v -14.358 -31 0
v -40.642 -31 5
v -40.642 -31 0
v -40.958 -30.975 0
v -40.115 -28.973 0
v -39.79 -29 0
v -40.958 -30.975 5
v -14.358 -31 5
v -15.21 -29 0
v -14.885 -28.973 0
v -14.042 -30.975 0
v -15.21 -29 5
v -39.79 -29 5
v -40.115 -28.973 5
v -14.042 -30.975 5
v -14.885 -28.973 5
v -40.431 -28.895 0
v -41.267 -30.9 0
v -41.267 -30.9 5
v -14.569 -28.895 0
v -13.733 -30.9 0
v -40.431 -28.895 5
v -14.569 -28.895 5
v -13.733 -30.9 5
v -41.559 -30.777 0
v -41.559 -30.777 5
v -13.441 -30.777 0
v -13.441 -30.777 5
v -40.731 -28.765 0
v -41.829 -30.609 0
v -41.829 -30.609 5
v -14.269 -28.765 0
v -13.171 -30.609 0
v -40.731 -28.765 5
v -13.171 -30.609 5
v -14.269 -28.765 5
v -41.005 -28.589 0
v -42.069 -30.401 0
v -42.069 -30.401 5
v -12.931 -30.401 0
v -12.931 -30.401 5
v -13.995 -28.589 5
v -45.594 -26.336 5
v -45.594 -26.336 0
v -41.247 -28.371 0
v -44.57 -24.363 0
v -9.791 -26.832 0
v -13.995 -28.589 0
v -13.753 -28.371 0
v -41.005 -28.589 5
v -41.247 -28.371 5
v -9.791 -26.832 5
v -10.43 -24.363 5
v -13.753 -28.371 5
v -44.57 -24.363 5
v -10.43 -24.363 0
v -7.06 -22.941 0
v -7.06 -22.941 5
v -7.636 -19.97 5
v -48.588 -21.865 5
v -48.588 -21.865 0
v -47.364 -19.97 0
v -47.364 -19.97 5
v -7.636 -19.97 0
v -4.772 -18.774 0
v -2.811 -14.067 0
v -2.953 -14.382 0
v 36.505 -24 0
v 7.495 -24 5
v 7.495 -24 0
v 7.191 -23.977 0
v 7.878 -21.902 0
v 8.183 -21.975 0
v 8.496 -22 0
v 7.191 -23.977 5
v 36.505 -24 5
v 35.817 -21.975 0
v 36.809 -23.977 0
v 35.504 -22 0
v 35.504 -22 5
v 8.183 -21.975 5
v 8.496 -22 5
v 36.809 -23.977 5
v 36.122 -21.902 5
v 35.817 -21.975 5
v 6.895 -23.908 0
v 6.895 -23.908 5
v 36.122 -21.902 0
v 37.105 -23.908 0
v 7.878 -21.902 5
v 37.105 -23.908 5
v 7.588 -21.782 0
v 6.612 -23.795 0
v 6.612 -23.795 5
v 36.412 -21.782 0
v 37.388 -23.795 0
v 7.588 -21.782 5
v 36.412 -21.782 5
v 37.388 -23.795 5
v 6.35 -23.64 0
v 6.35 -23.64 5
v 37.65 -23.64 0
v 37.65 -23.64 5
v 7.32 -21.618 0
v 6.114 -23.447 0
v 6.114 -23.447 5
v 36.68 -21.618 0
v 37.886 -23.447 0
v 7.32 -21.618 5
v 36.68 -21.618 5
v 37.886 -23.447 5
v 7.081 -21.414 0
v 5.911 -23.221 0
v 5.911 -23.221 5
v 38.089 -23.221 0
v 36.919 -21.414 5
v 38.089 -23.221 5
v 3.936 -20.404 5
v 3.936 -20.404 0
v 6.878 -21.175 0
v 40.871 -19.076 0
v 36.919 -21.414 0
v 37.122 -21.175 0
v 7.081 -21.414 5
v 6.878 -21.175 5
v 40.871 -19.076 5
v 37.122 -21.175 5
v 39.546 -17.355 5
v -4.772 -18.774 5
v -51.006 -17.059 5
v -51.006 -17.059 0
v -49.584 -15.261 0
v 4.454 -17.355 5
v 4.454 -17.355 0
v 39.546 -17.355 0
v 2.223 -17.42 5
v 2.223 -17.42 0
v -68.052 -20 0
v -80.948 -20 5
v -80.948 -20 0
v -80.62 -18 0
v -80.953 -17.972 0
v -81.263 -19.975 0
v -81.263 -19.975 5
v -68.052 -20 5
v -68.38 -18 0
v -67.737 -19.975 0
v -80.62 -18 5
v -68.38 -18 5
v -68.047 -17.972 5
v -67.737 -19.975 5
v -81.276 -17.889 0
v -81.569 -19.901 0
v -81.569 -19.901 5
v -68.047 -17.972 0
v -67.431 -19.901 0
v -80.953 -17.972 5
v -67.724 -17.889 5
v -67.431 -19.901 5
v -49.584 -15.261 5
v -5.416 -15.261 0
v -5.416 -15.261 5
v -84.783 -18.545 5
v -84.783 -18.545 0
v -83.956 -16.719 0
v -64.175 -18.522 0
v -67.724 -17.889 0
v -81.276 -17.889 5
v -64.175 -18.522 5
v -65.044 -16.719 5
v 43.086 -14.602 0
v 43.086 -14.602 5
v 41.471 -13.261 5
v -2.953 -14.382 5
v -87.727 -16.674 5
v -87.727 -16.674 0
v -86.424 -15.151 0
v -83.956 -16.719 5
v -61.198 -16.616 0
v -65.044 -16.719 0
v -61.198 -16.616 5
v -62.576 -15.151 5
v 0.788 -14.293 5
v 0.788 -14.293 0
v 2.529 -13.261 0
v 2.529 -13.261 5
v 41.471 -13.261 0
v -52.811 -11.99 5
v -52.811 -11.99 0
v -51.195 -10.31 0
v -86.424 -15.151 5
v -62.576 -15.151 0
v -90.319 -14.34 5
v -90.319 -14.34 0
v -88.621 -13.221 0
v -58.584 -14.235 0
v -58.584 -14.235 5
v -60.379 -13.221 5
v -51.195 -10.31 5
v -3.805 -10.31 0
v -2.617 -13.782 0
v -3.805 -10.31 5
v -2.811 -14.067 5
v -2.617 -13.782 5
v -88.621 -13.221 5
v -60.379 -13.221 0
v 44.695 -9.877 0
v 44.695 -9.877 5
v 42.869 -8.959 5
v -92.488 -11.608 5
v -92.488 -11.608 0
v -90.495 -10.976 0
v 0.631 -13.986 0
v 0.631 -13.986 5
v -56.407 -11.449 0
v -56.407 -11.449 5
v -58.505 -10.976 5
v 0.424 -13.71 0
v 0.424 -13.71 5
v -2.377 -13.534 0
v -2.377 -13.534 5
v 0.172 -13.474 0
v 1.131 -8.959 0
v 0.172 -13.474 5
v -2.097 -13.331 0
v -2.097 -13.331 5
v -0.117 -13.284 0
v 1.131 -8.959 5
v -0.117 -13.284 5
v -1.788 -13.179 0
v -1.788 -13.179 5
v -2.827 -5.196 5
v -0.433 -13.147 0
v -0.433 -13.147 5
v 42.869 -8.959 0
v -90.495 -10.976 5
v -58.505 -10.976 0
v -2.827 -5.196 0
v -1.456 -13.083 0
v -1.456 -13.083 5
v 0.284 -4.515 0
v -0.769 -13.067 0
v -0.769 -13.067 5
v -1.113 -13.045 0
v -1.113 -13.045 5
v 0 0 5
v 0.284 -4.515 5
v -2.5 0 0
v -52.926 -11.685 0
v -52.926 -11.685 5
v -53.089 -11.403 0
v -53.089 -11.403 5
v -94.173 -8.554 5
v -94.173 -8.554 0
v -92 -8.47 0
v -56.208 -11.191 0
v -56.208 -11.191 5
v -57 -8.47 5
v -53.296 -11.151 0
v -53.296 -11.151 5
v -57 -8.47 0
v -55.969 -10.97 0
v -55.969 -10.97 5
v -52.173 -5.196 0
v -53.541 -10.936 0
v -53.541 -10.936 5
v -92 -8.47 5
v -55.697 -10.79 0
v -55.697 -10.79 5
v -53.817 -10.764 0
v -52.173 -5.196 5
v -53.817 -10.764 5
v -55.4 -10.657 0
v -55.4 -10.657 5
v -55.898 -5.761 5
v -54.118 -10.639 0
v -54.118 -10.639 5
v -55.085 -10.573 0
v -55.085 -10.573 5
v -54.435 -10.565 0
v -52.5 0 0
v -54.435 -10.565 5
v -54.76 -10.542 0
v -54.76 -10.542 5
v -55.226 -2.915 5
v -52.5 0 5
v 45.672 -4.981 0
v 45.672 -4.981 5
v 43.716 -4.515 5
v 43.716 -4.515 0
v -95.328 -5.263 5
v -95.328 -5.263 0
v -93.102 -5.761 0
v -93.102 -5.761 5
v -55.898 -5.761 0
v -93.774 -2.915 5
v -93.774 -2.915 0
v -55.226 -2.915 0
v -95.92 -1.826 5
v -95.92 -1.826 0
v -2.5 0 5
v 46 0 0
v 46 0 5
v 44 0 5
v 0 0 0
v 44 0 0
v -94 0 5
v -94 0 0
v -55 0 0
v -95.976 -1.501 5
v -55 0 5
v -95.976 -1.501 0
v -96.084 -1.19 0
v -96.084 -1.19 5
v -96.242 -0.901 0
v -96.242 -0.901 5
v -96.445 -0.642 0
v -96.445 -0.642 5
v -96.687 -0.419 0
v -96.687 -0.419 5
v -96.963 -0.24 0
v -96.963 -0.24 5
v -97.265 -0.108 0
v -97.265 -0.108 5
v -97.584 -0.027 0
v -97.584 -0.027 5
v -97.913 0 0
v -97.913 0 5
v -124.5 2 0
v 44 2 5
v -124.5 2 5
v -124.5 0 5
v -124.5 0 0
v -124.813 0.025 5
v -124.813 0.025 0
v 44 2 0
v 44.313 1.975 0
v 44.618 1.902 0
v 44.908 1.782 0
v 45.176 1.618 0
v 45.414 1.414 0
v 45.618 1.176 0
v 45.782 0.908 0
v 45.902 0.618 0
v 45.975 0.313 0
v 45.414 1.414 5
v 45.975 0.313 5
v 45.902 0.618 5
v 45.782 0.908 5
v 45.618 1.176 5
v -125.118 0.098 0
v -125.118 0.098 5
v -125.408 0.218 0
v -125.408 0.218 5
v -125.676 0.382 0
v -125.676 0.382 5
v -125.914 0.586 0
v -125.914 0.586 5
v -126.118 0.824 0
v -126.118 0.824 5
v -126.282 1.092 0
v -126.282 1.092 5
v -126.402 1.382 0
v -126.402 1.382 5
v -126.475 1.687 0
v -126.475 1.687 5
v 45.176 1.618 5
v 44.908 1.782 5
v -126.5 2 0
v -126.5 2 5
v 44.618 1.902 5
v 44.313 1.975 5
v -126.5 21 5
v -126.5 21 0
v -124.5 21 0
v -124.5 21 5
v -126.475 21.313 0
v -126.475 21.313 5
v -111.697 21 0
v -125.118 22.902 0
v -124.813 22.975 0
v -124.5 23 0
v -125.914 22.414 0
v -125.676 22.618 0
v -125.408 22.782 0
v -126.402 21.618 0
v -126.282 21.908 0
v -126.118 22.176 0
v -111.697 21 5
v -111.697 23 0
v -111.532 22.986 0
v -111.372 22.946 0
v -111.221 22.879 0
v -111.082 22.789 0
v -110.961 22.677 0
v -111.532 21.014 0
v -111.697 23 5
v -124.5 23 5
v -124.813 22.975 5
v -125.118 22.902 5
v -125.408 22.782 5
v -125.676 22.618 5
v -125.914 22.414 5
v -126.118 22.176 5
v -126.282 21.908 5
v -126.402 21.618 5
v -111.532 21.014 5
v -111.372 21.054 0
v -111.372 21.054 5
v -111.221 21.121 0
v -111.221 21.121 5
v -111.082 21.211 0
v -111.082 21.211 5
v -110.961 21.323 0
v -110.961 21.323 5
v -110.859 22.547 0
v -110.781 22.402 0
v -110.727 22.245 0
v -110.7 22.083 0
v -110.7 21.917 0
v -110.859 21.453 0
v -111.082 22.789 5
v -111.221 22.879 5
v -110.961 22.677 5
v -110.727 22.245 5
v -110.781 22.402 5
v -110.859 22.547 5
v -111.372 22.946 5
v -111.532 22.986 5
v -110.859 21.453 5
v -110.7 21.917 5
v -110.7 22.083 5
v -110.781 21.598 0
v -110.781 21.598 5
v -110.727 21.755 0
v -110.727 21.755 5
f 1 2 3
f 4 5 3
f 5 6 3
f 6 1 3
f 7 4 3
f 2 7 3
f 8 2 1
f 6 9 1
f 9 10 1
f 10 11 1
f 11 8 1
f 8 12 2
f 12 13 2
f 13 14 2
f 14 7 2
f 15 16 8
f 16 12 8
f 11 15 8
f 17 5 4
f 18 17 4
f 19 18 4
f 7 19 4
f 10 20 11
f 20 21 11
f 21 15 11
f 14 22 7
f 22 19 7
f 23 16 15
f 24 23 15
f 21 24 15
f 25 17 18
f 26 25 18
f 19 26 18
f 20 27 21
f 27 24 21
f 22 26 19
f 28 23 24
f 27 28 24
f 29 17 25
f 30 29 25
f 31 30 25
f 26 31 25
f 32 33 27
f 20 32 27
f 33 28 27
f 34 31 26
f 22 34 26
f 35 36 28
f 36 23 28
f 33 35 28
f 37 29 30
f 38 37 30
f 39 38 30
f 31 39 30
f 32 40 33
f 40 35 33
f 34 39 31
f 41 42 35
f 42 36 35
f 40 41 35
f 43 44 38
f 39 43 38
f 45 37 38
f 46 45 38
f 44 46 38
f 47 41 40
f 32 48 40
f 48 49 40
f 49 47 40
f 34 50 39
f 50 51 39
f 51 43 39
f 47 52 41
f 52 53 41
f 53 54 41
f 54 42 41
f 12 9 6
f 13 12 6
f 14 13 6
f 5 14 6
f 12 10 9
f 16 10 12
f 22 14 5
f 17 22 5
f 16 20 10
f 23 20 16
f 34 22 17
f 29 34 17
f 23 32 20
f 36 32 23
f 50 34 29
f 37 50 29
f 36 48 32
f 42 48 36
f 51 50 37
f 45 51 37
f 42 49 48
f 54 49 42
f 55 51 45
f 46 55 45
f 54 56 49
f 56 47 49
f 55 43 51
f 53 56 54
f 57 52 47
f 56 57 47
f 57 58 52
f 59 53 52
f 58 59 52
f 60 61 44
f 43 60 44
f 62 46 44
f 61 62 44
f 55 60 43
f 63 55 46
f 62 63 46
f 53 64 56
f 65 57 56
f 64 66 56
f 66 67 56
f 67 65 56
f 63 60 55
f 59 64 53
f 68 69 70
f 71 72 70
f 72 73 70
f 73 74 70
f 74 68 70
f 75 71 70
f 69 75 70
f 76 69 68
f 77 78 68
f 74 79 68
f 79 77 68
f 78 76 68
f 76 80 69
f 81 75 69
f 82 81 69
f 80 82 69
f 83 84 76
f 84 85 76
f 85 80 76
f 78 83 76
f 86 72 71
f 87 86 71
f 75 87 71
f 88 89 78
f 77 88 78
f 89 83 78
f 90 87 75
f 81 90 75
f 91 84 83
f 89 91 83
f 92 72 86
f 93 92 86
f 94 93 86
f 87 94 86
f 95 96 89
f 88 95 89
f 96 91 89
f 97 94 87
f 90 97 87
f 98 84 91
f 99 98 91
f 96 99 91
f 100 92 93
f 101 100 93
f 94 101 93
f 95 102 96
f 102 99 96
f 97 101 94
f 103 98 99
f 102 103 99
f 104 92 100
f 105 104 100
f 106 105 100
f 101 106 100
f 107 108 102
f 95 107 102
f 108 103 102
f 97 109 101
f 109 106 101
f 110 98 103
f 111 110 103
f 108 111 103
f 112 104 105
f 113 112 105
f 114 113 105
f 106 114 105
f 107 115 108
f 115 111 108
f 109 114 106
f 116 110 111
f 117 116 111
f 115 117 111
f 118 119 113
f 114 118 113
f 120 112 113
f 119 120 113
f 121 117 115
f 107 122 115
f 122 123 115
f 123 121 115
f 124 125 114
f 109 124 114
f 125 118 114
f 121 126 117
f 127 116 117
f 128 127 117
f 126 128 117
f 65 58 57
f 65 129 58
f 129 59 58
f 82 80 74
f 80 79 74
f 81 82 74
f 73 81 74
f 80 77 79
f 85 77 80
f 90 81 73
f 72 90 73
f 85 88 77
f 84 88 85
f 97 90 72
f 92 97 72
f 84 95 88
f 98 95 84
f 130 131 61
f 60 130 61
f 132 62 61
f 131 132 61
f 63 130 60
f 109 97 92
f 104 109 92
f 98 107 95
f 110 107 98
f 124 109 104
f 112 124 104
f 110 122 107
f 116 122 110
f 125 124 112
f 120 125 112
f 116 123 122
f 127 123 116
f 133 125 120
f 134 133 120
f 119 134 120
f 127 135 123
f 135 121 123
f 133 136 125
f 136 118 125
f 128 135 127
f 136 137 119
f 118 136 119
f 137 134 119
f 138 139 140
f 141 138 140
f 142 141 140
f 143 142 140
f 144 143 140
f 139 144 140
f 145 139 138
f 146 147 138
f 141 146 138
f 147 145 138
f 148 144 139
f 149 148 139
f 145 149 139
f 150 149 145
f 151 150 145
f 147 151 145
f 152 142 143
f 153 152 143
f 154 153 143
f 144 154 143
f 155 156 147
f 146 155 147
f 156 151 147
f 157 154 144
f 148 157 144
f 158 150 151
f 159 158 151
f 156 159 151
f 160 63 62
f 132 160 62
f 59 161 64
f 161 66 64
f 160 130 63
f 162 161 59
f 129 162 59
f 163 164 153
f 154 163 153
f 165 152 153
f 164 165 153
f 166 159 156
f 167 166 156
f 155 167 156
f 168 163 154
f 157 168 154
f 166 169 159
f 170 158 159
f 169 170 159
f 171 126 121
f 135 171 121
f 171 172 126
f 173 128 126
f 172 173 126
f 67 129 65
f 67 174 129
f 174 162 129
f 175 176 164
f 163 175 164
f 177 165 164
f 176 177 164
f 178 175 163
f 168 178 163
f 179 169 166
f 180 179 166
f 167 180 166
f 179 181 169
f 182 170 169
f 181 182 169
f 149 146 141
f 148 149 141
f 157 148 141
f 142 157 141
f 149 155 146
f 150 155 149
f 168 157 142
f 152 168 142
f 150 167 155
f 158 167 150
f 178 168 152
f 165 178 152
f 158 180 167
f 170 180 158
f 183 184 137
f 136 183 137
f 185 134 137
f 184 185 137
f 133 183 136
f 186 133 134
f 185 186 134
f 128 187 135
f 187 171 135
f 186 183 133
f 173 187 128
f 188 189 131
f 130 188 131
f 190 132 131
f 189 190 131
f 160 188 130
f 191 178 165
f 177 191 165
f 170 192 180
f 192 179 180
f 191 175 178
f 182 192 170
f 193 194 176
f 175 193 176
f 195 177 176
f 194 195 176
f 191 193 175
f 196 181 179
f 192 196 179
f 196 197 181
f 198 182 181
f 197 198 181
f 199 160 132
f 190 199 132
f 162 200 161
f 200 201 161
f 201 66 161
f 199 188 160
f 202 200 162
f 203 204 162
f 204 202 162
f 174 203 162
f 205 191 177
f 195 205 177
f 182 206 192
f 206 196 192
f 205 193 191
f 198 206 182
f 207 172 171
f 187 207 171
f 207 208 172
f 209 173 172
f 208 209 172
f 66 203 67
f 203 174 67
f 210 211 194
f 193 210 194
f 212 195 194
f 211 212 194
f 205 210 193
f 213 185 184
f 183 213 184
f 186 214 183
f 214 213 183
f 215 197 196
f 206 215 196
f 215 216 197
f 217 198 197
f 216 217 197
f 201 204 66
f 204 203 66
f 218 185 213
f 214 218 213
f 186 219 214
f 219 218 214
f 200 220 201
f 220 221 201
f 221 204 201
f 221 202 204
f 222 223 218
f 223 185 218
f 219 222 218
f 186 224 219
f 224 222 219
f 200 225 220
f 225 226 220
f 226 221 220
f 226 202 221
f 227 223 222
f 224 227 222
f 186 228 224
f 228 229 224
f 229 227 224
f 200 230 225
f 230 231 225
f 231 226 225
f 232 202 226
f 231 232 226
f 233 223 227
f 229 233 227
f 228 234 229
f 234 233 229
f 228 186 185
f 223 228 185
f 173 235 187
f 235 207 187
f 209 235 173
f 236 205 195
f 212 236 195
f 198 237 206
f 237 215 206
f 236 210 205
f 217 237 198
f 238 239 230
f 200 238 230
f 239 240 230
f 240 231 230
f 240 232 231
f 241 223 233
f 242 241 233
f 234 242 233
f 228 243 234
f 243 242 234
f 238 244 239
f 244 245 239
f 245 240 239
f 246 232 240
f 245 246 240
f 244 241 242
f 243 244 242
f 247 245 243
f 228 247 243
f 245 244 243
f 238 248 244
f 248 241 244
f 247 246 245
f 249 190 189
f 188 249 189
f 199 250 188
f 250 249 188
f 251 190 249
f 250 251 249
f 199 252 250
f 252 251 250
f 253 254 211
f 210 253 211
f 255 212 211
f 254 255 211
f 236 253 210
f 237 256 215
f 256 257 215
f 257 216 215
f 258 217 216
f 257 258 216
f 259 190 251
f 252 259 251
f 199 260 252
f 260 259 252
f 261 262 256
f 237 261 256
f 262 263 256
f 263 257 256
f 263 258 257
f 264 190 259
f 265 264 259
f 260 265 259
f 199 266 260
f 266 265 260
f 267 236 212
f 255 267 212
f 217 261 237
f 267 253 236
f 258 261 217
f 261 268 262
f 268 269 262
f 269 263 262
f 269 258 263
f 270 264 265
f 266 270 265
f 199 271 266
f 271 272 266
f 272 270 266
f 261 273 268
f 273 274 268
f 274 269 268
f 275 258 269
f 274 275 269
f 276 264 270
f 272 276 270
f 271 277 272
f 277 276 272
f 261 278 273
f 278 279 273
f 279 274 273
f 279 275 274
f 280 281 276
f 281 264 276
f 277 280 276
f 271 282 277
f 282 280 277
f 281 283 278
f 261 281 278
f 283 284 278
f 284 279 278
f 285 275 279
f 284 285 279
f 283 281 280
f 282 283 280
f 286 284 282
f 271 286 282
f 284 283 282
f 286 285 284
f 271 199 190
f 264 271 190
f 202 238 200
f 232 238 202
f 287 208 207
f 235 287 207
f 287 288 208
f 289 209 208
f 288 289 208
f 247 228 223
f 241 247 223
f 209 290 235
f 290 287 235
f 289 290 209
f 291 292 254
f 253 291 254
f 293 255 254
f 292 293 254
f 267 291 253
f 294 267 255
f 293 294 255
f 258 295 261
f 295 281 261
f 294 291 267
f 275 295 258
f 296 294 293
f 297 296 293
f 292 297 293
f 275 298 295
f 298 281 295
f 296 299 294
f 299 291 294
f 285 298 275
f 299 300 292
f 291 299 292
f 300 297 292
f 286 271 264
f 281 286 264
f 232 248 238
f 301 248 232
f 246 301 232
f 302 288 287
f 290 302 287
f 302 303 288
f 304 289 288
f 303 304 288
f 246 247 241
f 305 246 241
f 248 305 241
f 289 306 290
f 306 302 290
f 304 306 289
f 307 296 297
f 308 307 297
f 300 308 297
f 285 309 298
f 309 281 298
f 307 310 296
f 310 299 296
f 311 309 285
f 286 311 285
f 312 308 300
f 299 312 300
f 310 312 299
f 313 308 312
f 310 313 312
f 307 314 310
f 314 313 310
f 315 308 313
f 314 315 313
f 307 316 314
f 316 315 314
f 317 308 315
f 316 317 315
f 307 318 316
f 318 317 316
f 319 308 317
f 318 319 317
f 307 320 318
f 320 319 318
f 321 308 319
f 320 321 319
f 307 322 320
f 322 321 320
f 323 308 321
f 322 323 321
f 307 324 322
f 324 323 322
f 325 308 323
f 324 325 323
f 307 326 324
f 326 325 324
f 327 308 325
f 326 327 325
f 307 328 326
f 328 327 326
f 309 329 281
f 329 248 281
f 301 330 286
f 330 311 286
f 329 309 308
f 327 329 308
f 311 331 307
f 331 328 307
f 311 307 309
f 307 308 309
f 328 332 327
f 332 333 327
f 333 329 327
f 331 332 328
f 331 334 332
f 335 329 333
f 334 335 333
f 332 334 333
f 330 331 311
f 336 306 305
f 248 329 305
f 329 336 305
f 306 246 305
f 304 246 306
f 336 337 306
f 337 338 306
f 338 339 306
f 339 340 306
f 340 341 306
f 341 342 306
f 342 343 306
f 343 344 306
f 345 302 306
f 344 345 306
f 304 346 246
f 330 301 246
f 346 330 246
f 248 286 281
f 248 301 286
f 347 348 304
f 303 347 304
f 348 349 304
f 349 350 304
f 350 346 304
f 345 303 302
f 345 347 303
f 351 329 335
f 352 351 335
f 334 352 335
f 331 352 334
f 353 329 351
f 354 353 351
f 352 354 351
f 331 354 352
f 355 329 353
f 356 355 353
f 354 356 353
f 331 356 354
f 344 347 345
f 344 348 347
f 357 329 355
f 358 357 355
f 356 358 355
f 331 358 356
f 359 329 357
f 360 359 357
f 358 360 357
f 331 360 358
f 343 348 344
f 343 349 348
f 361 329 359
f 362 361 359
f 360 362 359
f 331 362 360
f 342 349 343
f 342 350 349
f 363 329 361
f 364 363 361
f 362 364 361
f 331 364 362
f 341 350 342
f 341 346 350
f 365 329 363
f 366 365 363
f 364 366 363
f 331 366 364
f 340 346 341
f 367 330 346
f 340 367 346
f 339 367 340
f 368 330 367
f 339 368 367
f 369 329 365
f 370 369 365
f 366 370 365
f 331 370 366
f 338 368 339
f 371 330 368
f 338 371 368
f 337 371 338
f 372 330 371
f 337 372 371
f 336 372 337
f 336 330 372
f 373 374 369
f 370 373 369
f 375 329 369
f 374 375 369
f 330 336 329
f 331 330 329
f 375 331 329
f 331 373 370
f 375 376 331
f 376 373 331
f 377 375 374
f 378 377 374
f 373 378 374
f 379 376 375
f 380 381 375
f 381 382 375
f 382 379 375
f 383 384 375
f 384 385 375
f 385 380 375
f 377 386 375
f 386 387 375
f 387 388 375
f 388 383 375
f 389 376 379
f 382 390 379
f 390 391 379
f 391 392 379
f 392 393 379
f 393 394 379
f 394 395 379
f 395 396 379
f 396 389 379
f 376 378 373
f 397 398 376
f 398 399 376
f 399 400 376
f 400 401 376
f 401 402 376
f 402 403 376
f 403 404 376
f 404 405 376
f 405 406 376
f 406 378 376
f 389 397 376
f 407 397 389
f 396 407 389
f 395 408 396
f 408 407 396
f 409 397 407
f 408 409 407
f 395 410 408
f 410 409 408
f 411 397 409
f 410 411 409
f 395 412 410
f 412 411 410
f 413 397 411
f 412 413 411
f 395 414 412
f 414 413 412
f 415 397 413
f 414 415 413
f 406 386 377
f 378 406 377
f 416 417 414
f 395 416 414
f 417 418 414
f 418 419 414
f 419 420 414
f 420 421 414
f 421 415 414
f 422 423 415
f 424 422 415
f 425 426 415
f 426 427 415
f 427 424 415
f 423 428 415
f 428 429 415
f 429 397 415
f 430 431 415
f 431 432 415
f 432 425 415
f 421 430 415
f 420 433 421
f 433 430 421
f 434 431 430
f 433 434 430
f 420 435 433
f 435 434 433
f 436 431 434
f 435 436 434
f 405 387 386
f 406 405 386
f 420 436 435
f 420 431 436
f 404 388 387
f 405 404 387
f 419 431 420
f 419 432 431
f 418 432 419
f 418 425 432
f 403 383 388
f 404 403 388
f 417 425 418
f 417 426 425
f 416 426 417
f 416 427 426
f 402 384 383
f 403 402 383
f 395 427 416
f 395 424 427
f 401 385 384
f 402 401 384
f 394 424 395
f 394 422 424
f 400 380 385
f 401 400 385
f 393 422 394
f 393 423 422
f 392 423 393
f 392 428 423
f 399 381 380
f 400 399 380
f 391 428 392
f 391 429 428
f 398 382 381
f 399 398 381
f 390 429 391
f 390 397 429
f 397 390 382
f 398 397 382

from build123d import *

# Parameters (mm, degrees)
BOSS_EXTRUDE1_DEPTH = 5
FILLET1_R           = 2
FILLET2_R           = 1


with BuildPart() as part:
    # Sketch1 → Boss-Extrude1 (new body)
    with BuildSketch(Plane.XY):
        with BuildLine():
            Line((45.947382797642085, 2), (-124.5, 1.9999999999999962))
            Line((-124.5, 1.9999999999999962), (-124.5, 20.99999999999999))
            Line((-124.5, 20.99999999999999), (-109.6965869966638, 20.999999999999993))
            Line((-109.6965869966638, 20.999999999999993), (-109.6965869966638, 22.99999999999999))
            Line((-109.6965869966638, 22.99999999999999), (-126.5, 22.99999999999999))
            Line((-126.5, 22.99999999999999), (-126.5, -3.98e-15))
            Line((-126.5, -3.98e-15), (-96.00000000000003, -5.01e-15))
            ThreePointArc((-96.00000000000003, -1.3922e-13), (-91.91634498174992, -12.422936572760829), (-81.25831039658792, -19.999999999999993))
            Line((-81.25831039658792, -19.999999999999996), (-67.7416896034121, -19.999999999999996))
            ThreePointArc((-67.7416896034121, -20), (-59.22674645064795, -14.898875979359843), (-54.01801901082011, -6.449326782725662))
            ThreePointArc((-54.01801901082044, -6.449326782725638), (-49.745600463821845, -19.747926884371328), (-41.46929842095424, -31.000000000000007))
            Line((-41.46929842095423, -31), (-13.530701579045768, -31))
            ThreePointArc((-13.530701579045765, -31.000000000000004), (-5.5615533236631265, -20.33765705801185), (-1.1997684126617827, -7.76118245981885))
            ThreePointArc((-1.1997684126617756, -7.761182459818851), (1.6903832669508674, -16.34383705889386), (6.527542114603506, -24))
            Line((6.527542114603509, -24), (37.47245788539651, -24))
            ThreePointArc((37.47245788539651, -24), (44.12729350691807, -11.787963694678155), (45.947382797642085, 2))
        make_face()
        with BuildLine():
            ThreePointArc((-55.000000000000014, -3.1e-16), (-58.606442943263986, -11.117096597214955), (-68.05217786452643, -18))
            Line((-68.05217786452643, -18), (-80.94782213547359, -18))
            ThreePointArc((-80.94782213547359, -18.000000000000004), (-90.39355705673603, -11.117096597214955), (-94, -5.08e-15))
            Line((-94, -5.08e-15), (-55.00000000000001, -3.1e-16))
        make_face(mode=Mode.SUBTRACT)
        with BuildLine():
            ThreePointArc((-2.499999999999993, 0), (-5.579078670022007, -15.665382277262486), (-14.358195797467605, -28.999999999999996))
            Line((-14.358195797467618, -29), (-40.641804202532384, -29))
            ThreePointArc((-40.641804202532384, -29), (-49.420921329978, -15.665382277262491), (-52.500000000000014, 0))
            Line((-52.50000000000001, 0), (-2.5, 0))
        make_face(mode=Mode.SUBTRACT)
        with BuildLine():
            ThreePointArc((7.494737611193308, -21.999999999999993), (1.9251046025075595, -11.620790548201041), (0, 0))
            Line((0, 0), (44, 0))
            ThreePointArc((44, 0), (42.07489539749246, -11.620790548201052), (36.5052623888067, -22))
            Line((36.50526238880669, -22), (7.494737611193305, -21.999999999999986))
        make_face(mode=Mode.SUBTRACT)
    extrude(amount=BOSS_EXTRUDE1_DEPTH)

    # Fillet1
    # the kernel refuses this fillet: 2 mm, written as the material it adds along each edge
    with BuildSketch(Plane(origin=(7.494737611193306, -21.99999999999999, 0), x_dir=(-0.5991062369957058, 0.8006695428157894, 0), z_dir=(0, 0, 1))) as fillet1_piece_1:
        with BuildLine():
            CenterArc((1.0015491764552975, -1.9997957036664622), FILLET1_R, 89.18105145509278, 54.01303517716653)
            Line((-0.5997899091731567, -0.8015832296708748), (0, 0))
            ThreePointArc((0, 0), (0.5150674500576004, 0.00368108195627573), (1.030134900115199, -5e-17))
        make_face()
    extrude(amount=5)
    with BuildSketch(Plane(origin=(36.5052623888067, -22, 0), x_dir=(0.599106236995708, 0.8006695428157878, 0), z_dir=(0, 0, 1))) as fillet1_piece_2:
        with BuildLine():
            CenterArc((1.0015491764552726, 1.9997957036664615), FILLET1_R, 216.80591336773654, 54.01303517717065)
            Line((-0.5997899091732678, 0.8015832296709893), (0, 0))
            ThreePointArc((0, 0), (0.5150674500575887, -0.00368108195627645), (1.0301349001151745, 4e-17))
        make_face()
    extrude(amount=5)
    with BuildSketch(Plane(origin=(-1.1997684126617827, -7.7611824598188495, 0), x_dir=(-0.2559607440844839, -0.9666871766438806, 0), z_dir=(0, 0, 1))) as fillet1_piece_3:
        with BuildLine():
            CenterArc((7.006516264382127, 1.9937618524445377), FILLET1_R, 126.90247774602503, 138.57101311365483)
            ThreePointArc((5.80560665040515, 3.593079237786693), (2.9835854859434217, 1.6660138445939616), (0, 0))
            ThreePointArc((0, 0), (3.424337799359584, 0.13533600091225512), (6.84867559871917, -3e-17))
        make_face()
    extrude(amount=5)
    with BuildSketch(Plane(origin=(-14.358195797467612, -29, 0), x_dir=(0.6930946226970236, 0.720846616131664, 0), z_dir=(0, 0, 1))) as fillet1_piece_4:
        with BuildLine():
            CenterArc((0.8516205484031373, 1.9998888522074818), FILLET1_R, 223.8755770631898, 46.728475963226686)
            Line((-0.5900726838592292, 0.6136996068124346), (0, 0))
            ThreePointArc((0, 0), (0.4363527930685471, -0.00230019269212628), (0.8727055861370968, 1e-17))
        make_face()
    extrude(amount=5)
    with BuildSketch(Plane(origin=(-40.641804202532384, -29, 0), x_dir=(1, 0, 0), z_dir=(0, 0, 1))) as fillet1_piece_5:
        with BuildLine():
            CenterArc((0.8513594890752856, 2), FILLET1_R, 223.27152403673355, 46.72847596326642)
            ThreePointArc((-0.6048675489506863, 0.629086868644805), (-0.3040918605932177, 0.3129491831369968), (0, 0))
            Line((0, 0), (0.8513594890752856, 0))
        make_face()
    extrude(amount=5)
    with BuildSketch(Plane(origin=(-54.01801901082027, -6.449326782725651, 0), x_dir=(-0.4311999989802577, -0.9022563720359229, 0), z_dir=(0, 0, 1))) as fillet1_piece_6:
        with BuildLine():
            CenterArc((5.805573723556372, 1.9824143967569778), FILLET1_R, 131.58462794743895, 130.81175906112728)
            ThreePointArc((4.4781226039186794, 3.478366777340206), (2.2959426874147386, 1.6659530957609738), (0, 0))
            ThreePointArc((0, 0), (2.7704679671233965, 0.18410201579468238), (5.540935934246784, 1.2e-16))
        make_face()
    extrude(amount=5)
    with BuildSketch(Plane(origin=(-68.05217786452643, -18, 0), x_dir=(0.9475954690279733, 0.3194727329173106, 0), z_dir=(0, 0, 1))) as fillet1_piece_7:
        with BuildLine():
            CenterArc((0.3283173010527549, 1.9999162475023402), FILLET1_R, 251.36895898872925, 19.155393135414442)
            Line((-0.31062816478187977, 0.10472530944639823), (0, 0))
            ThreePointArc((0, 0), (0.17331019378626858, -0.00079304447276945), (0.34662038757253955, 0))
        make_face()
    extrude(amount=5)
    with BuildSketch(Plane(origin=(-80.94782213547359, -18.000000000000004, 0), x_dir=(1, 1.084e-14, 0), z_dir=(0, 0, 1))) as fillet1_piece_8:
        with BuildLine():
            CenterArc((0.32780672231424324, 2), FILLET1_R, 250.84460686458493, 19.155393135414442)
            ThreePointArc((-0.32845590873647146, 0.11073576250266372), (-0.1644813104532966, 0.05461639590219925), (0, 0))
            Line((0, 0), (0.3278067223142216, 0))
        make_face()
    extrude(amount=5)
    with BuildSketch(Plane(origin=(-96.00000000000003, -7.212e-14, 0), x_dir=(-1, 3.515e-14, 0), z_dir=(0, 0, 1))) as fillet1_piece_9:
        with BuildLine():
            CenterArc((1.912641367901373, 2), FILLET1_R, 185.00210139930942, 84.99789860069257)
            ThreePointArc((-0.07974163383531896, 1.82561544107731), (-0.01994490800398211, 0.9136780706116656), (0, 0))
            Line((0, 0), (1.9126413679014433, 0))
        make_face()
    extrude(amount=5)
    # the kernel refuses this fillet: 2 mm, written as the material it takes off along each edge
    with BuildSketch(Plane(origin=(45.947382797642085, 2.000000000000002, -5.001730056930275), x_dir=(0.026299501252087354, -0.9996541082964104, 0), z_dir=(0, 0, 1))) as fillet1_2_piece_1:
        with BuildLine():
            CenterArc((1.9480930202679383, -1.9993082165928209), FILLET1_R, 88.4929758152285, 89.9999999999682)
            Line((-0.05121519632485345, -1.9467092140875382), (0, 0))
            ThreePointArc((0, 0), (1.0003460113860576, 0.01315657596471321), (2.0006920227721112, 0))
        make_face()
    extrude(amount=15.003460113860552, mode=Mode.SUBTRACT)
    with BuildSketch(Plane(origin=(37.47245788539651, -24, -2.4841807127470568), x_dir=(-1, 0, 0), z_dir=(0, 0, 1))) as fillet1_2_piece_2:
        with BuildLine():
            CenterArc((0.9671954965845302, -2), FILLET1_R, 90, 52.37513808750745)
            ThreePointArc((-0.6168541298615224, -0.7790222029225369), (-0.3109710749573793, -0.3874966748050994), (0, 0))
            Line((0, 0), (0.9671954965845302, 0))
        make_face()
    extrude(amount=9.968361425494114, mode=Mode.SUBTRACT)
    with BuildSketch(Plane(origin=(6.527542114603495, -24, -2.484180712746931), x_dir=(-0.6207822630344314, 0.7839830239883068, 0), z_dir=(0, 0, 1))) as fillet1_2_piece_3:
        with BuildLine():
            CenterArc((0.9675482388101264, -1.9998293762732642), FILLET1_R, 89.2515799187701, 52.375138087411486)
            Line((-0.60041780916442, -0.7582648502017908), (0, 0))
            ThreePointArc((0, 0), (0.4968361425493905, 0.00324498101414436), (0.993672285098762, -4e-17))
        make_face()
    extrude(amount=9.96836142549386, mode=Mode.SUBTRACT)
    with BuildSketch(Plane(origin=(-13.53070157904575, -31, -2.118127681372563), x_dir=(-1, 0, 0), z_dir=(0, 0, 1))) as fillet1_2_piece_4:
        with BuildLine():
            CenterArc((0.8274942184199716, -2), FILLET1_R, 90, 45.520369910435846)
            ThreePointArc((-0.5995049670605166, -0.598688712441799), (-0.30121380534773223, -0.29788104203134225), (0, 0))
            Line((0, 0), (0.8274942184199716, 0))
        make_face()
    extrude(amount=9.236255362745126, mode=Mode.SUBTRACT)
    with BuildSketch(Plane(origin=(-41.469298420954246, -31, -2.118127681372557), x_dir=(1, 0, 0), z_dir=(0, 0, 1))) as fillet1_2_piece_5:
        with BuildLine():
            CenterArc((0.8274942184200782, 2), FILLET1_R, 224.47963008956205, 45.52036991043792)
            ThreePointArc((-0.5995049670604615, 0.5986887124418523), (-0.3012138053477287, 0.29788104203132804), (0, 0))
            Line((0, 0), (0.8274942184200782, 0))
        make_face()
    extrude(amount=9.236255362745114, mode=Mode.SUBTRACT)
    with BuildSketch(Plane(origin=(-67.7416896034121, -19.999999999999996, -0.8161799892839701), x_dir=(-1, 0, 0), z_dir=(0, 0, 1))) as fillet1_2_piece_6:
        with BuildLine():
            CenterArc((0.3104882611143438, -2), FILLET1_R, 90, 18.10668888712732)
            ThreePointArc((-0.3110865262256084, -0.09904108836006387), (-0.15573630283404327, -0.04891420940217017), (0, 0))
            Line((0, 0), (0.3104882611143438, 0))
        make_face()
    extrude(amount=6.632359978548406, mode=Mode.SUBTRACT)
    with BuildSketch(Plane(origin=(-81.25831039658793, -19.999999999999993, -0.8161799892839283), x_dir=(-0.9528735398862427, 0.3033677916072522, 0), z_dir=(0, 0, 1))) as fillet1_2_piece_7:
        with BuildLine():
            CenterArc((0.3108795347533545, -1.9999392178667164), FILLET1_R, 89.55330437229577, 18.106688887126865)
            Line((-0.2958560484611499, -0.09419213809423096), (0, 0))
            ThreePointArc((0, 0), (0.16323599785482176, 0.00063632240005913), (0.32647199570966445, 0))
        make_face()
    extrude(amount=6.632359978548333, mode=Mode.SUBTRACT)
    with BuildSketch(Plane(origin=(-109.6965869966638, 20.999999999999993, -5), x_dir=(-1, 0, 0), z_dir=(0, 0, 1)), Plane(origin=(-126.5, 22.99999999999999, -5), x_dir=(1, 0, 0), z_dir=(0, 0, 1))) as fillet1_2_piece_8:
        with BuildLine():
            CenterArc((FILLET1_R, -FILLET1_R), FILLET1_R, 90, 90)
            Line((0, -FILLET1_R), (0, 0))
            Line((0, 0), (FILLET1_R, 0))
        make_face()
    extrude(amount=15, mode=Mode.SUBTRACT)
    with BuildSketch(Plane(origin=(-109.6965869966638, 22.99999999999999, -5), x_dir=(0, -1, 0), z_dir=(0, 0, 1))) as fillet1_2_piece_9:
        with BuildLine():
            CenterArc((FILLET1_R, -FILLET1_R), FILLET1_R, 90, 90)
            Line((0, -FILLET1_R), (0, 0))
            Line((0, 0), (FILLET1_R, 0))
        make_face()
    extrude(amount=15, mode=Mode.SUBTRACT)
    with BuildSketch(Plane(origin=(-126.5, -3.55e-15, -5.000000000000001), x_dir=(0, 1, 0), z_dir=(0, 0, 1))) as fillet1_2_piece_10:
        with BuildLine():
            CenterArc((FILLET1_R, -FILLET1_R), FILLET1_R, 90, 90)
            Line((0, -FILLET1_R), (0, 0))
            Line((0, 0), (FILLET1_R, 0))
        make_face()
    extrude(amount=15, mode=Mode.SUBTRACT)

    # Fillet2
    # the kernel refuses this fillet: 1 mm, written as the material it takes off along each edge
    with BuildSketch(Plane(origin=(-109.96453618909511, 22, 9.999988187015607), x_dir=(-0.8660247217603869, -0.5000011812984491, 0), z_dir=(0, 0, -1))) as fillet2_piece_1:
        with BuildLine():
            CenterArc((1.4999964561018568, 0.8660260858068783), FILLET2_R, 120.0002344623185, 179.99968738357467)
            ThreePointArc((0.9999929122093405, 1.7320494435143525), (0.2679464643438091, 0.9999980028954786), (0, 0))
            ThreePointArc((0, 0), (0.9999976374012411, -0.26794782838624004), (1.999995274802482, 1.4e-16))
        make_face()
    extrude(amount=14.999976374031213, mode=Mode.SUBTRACT)


solid = part.part
